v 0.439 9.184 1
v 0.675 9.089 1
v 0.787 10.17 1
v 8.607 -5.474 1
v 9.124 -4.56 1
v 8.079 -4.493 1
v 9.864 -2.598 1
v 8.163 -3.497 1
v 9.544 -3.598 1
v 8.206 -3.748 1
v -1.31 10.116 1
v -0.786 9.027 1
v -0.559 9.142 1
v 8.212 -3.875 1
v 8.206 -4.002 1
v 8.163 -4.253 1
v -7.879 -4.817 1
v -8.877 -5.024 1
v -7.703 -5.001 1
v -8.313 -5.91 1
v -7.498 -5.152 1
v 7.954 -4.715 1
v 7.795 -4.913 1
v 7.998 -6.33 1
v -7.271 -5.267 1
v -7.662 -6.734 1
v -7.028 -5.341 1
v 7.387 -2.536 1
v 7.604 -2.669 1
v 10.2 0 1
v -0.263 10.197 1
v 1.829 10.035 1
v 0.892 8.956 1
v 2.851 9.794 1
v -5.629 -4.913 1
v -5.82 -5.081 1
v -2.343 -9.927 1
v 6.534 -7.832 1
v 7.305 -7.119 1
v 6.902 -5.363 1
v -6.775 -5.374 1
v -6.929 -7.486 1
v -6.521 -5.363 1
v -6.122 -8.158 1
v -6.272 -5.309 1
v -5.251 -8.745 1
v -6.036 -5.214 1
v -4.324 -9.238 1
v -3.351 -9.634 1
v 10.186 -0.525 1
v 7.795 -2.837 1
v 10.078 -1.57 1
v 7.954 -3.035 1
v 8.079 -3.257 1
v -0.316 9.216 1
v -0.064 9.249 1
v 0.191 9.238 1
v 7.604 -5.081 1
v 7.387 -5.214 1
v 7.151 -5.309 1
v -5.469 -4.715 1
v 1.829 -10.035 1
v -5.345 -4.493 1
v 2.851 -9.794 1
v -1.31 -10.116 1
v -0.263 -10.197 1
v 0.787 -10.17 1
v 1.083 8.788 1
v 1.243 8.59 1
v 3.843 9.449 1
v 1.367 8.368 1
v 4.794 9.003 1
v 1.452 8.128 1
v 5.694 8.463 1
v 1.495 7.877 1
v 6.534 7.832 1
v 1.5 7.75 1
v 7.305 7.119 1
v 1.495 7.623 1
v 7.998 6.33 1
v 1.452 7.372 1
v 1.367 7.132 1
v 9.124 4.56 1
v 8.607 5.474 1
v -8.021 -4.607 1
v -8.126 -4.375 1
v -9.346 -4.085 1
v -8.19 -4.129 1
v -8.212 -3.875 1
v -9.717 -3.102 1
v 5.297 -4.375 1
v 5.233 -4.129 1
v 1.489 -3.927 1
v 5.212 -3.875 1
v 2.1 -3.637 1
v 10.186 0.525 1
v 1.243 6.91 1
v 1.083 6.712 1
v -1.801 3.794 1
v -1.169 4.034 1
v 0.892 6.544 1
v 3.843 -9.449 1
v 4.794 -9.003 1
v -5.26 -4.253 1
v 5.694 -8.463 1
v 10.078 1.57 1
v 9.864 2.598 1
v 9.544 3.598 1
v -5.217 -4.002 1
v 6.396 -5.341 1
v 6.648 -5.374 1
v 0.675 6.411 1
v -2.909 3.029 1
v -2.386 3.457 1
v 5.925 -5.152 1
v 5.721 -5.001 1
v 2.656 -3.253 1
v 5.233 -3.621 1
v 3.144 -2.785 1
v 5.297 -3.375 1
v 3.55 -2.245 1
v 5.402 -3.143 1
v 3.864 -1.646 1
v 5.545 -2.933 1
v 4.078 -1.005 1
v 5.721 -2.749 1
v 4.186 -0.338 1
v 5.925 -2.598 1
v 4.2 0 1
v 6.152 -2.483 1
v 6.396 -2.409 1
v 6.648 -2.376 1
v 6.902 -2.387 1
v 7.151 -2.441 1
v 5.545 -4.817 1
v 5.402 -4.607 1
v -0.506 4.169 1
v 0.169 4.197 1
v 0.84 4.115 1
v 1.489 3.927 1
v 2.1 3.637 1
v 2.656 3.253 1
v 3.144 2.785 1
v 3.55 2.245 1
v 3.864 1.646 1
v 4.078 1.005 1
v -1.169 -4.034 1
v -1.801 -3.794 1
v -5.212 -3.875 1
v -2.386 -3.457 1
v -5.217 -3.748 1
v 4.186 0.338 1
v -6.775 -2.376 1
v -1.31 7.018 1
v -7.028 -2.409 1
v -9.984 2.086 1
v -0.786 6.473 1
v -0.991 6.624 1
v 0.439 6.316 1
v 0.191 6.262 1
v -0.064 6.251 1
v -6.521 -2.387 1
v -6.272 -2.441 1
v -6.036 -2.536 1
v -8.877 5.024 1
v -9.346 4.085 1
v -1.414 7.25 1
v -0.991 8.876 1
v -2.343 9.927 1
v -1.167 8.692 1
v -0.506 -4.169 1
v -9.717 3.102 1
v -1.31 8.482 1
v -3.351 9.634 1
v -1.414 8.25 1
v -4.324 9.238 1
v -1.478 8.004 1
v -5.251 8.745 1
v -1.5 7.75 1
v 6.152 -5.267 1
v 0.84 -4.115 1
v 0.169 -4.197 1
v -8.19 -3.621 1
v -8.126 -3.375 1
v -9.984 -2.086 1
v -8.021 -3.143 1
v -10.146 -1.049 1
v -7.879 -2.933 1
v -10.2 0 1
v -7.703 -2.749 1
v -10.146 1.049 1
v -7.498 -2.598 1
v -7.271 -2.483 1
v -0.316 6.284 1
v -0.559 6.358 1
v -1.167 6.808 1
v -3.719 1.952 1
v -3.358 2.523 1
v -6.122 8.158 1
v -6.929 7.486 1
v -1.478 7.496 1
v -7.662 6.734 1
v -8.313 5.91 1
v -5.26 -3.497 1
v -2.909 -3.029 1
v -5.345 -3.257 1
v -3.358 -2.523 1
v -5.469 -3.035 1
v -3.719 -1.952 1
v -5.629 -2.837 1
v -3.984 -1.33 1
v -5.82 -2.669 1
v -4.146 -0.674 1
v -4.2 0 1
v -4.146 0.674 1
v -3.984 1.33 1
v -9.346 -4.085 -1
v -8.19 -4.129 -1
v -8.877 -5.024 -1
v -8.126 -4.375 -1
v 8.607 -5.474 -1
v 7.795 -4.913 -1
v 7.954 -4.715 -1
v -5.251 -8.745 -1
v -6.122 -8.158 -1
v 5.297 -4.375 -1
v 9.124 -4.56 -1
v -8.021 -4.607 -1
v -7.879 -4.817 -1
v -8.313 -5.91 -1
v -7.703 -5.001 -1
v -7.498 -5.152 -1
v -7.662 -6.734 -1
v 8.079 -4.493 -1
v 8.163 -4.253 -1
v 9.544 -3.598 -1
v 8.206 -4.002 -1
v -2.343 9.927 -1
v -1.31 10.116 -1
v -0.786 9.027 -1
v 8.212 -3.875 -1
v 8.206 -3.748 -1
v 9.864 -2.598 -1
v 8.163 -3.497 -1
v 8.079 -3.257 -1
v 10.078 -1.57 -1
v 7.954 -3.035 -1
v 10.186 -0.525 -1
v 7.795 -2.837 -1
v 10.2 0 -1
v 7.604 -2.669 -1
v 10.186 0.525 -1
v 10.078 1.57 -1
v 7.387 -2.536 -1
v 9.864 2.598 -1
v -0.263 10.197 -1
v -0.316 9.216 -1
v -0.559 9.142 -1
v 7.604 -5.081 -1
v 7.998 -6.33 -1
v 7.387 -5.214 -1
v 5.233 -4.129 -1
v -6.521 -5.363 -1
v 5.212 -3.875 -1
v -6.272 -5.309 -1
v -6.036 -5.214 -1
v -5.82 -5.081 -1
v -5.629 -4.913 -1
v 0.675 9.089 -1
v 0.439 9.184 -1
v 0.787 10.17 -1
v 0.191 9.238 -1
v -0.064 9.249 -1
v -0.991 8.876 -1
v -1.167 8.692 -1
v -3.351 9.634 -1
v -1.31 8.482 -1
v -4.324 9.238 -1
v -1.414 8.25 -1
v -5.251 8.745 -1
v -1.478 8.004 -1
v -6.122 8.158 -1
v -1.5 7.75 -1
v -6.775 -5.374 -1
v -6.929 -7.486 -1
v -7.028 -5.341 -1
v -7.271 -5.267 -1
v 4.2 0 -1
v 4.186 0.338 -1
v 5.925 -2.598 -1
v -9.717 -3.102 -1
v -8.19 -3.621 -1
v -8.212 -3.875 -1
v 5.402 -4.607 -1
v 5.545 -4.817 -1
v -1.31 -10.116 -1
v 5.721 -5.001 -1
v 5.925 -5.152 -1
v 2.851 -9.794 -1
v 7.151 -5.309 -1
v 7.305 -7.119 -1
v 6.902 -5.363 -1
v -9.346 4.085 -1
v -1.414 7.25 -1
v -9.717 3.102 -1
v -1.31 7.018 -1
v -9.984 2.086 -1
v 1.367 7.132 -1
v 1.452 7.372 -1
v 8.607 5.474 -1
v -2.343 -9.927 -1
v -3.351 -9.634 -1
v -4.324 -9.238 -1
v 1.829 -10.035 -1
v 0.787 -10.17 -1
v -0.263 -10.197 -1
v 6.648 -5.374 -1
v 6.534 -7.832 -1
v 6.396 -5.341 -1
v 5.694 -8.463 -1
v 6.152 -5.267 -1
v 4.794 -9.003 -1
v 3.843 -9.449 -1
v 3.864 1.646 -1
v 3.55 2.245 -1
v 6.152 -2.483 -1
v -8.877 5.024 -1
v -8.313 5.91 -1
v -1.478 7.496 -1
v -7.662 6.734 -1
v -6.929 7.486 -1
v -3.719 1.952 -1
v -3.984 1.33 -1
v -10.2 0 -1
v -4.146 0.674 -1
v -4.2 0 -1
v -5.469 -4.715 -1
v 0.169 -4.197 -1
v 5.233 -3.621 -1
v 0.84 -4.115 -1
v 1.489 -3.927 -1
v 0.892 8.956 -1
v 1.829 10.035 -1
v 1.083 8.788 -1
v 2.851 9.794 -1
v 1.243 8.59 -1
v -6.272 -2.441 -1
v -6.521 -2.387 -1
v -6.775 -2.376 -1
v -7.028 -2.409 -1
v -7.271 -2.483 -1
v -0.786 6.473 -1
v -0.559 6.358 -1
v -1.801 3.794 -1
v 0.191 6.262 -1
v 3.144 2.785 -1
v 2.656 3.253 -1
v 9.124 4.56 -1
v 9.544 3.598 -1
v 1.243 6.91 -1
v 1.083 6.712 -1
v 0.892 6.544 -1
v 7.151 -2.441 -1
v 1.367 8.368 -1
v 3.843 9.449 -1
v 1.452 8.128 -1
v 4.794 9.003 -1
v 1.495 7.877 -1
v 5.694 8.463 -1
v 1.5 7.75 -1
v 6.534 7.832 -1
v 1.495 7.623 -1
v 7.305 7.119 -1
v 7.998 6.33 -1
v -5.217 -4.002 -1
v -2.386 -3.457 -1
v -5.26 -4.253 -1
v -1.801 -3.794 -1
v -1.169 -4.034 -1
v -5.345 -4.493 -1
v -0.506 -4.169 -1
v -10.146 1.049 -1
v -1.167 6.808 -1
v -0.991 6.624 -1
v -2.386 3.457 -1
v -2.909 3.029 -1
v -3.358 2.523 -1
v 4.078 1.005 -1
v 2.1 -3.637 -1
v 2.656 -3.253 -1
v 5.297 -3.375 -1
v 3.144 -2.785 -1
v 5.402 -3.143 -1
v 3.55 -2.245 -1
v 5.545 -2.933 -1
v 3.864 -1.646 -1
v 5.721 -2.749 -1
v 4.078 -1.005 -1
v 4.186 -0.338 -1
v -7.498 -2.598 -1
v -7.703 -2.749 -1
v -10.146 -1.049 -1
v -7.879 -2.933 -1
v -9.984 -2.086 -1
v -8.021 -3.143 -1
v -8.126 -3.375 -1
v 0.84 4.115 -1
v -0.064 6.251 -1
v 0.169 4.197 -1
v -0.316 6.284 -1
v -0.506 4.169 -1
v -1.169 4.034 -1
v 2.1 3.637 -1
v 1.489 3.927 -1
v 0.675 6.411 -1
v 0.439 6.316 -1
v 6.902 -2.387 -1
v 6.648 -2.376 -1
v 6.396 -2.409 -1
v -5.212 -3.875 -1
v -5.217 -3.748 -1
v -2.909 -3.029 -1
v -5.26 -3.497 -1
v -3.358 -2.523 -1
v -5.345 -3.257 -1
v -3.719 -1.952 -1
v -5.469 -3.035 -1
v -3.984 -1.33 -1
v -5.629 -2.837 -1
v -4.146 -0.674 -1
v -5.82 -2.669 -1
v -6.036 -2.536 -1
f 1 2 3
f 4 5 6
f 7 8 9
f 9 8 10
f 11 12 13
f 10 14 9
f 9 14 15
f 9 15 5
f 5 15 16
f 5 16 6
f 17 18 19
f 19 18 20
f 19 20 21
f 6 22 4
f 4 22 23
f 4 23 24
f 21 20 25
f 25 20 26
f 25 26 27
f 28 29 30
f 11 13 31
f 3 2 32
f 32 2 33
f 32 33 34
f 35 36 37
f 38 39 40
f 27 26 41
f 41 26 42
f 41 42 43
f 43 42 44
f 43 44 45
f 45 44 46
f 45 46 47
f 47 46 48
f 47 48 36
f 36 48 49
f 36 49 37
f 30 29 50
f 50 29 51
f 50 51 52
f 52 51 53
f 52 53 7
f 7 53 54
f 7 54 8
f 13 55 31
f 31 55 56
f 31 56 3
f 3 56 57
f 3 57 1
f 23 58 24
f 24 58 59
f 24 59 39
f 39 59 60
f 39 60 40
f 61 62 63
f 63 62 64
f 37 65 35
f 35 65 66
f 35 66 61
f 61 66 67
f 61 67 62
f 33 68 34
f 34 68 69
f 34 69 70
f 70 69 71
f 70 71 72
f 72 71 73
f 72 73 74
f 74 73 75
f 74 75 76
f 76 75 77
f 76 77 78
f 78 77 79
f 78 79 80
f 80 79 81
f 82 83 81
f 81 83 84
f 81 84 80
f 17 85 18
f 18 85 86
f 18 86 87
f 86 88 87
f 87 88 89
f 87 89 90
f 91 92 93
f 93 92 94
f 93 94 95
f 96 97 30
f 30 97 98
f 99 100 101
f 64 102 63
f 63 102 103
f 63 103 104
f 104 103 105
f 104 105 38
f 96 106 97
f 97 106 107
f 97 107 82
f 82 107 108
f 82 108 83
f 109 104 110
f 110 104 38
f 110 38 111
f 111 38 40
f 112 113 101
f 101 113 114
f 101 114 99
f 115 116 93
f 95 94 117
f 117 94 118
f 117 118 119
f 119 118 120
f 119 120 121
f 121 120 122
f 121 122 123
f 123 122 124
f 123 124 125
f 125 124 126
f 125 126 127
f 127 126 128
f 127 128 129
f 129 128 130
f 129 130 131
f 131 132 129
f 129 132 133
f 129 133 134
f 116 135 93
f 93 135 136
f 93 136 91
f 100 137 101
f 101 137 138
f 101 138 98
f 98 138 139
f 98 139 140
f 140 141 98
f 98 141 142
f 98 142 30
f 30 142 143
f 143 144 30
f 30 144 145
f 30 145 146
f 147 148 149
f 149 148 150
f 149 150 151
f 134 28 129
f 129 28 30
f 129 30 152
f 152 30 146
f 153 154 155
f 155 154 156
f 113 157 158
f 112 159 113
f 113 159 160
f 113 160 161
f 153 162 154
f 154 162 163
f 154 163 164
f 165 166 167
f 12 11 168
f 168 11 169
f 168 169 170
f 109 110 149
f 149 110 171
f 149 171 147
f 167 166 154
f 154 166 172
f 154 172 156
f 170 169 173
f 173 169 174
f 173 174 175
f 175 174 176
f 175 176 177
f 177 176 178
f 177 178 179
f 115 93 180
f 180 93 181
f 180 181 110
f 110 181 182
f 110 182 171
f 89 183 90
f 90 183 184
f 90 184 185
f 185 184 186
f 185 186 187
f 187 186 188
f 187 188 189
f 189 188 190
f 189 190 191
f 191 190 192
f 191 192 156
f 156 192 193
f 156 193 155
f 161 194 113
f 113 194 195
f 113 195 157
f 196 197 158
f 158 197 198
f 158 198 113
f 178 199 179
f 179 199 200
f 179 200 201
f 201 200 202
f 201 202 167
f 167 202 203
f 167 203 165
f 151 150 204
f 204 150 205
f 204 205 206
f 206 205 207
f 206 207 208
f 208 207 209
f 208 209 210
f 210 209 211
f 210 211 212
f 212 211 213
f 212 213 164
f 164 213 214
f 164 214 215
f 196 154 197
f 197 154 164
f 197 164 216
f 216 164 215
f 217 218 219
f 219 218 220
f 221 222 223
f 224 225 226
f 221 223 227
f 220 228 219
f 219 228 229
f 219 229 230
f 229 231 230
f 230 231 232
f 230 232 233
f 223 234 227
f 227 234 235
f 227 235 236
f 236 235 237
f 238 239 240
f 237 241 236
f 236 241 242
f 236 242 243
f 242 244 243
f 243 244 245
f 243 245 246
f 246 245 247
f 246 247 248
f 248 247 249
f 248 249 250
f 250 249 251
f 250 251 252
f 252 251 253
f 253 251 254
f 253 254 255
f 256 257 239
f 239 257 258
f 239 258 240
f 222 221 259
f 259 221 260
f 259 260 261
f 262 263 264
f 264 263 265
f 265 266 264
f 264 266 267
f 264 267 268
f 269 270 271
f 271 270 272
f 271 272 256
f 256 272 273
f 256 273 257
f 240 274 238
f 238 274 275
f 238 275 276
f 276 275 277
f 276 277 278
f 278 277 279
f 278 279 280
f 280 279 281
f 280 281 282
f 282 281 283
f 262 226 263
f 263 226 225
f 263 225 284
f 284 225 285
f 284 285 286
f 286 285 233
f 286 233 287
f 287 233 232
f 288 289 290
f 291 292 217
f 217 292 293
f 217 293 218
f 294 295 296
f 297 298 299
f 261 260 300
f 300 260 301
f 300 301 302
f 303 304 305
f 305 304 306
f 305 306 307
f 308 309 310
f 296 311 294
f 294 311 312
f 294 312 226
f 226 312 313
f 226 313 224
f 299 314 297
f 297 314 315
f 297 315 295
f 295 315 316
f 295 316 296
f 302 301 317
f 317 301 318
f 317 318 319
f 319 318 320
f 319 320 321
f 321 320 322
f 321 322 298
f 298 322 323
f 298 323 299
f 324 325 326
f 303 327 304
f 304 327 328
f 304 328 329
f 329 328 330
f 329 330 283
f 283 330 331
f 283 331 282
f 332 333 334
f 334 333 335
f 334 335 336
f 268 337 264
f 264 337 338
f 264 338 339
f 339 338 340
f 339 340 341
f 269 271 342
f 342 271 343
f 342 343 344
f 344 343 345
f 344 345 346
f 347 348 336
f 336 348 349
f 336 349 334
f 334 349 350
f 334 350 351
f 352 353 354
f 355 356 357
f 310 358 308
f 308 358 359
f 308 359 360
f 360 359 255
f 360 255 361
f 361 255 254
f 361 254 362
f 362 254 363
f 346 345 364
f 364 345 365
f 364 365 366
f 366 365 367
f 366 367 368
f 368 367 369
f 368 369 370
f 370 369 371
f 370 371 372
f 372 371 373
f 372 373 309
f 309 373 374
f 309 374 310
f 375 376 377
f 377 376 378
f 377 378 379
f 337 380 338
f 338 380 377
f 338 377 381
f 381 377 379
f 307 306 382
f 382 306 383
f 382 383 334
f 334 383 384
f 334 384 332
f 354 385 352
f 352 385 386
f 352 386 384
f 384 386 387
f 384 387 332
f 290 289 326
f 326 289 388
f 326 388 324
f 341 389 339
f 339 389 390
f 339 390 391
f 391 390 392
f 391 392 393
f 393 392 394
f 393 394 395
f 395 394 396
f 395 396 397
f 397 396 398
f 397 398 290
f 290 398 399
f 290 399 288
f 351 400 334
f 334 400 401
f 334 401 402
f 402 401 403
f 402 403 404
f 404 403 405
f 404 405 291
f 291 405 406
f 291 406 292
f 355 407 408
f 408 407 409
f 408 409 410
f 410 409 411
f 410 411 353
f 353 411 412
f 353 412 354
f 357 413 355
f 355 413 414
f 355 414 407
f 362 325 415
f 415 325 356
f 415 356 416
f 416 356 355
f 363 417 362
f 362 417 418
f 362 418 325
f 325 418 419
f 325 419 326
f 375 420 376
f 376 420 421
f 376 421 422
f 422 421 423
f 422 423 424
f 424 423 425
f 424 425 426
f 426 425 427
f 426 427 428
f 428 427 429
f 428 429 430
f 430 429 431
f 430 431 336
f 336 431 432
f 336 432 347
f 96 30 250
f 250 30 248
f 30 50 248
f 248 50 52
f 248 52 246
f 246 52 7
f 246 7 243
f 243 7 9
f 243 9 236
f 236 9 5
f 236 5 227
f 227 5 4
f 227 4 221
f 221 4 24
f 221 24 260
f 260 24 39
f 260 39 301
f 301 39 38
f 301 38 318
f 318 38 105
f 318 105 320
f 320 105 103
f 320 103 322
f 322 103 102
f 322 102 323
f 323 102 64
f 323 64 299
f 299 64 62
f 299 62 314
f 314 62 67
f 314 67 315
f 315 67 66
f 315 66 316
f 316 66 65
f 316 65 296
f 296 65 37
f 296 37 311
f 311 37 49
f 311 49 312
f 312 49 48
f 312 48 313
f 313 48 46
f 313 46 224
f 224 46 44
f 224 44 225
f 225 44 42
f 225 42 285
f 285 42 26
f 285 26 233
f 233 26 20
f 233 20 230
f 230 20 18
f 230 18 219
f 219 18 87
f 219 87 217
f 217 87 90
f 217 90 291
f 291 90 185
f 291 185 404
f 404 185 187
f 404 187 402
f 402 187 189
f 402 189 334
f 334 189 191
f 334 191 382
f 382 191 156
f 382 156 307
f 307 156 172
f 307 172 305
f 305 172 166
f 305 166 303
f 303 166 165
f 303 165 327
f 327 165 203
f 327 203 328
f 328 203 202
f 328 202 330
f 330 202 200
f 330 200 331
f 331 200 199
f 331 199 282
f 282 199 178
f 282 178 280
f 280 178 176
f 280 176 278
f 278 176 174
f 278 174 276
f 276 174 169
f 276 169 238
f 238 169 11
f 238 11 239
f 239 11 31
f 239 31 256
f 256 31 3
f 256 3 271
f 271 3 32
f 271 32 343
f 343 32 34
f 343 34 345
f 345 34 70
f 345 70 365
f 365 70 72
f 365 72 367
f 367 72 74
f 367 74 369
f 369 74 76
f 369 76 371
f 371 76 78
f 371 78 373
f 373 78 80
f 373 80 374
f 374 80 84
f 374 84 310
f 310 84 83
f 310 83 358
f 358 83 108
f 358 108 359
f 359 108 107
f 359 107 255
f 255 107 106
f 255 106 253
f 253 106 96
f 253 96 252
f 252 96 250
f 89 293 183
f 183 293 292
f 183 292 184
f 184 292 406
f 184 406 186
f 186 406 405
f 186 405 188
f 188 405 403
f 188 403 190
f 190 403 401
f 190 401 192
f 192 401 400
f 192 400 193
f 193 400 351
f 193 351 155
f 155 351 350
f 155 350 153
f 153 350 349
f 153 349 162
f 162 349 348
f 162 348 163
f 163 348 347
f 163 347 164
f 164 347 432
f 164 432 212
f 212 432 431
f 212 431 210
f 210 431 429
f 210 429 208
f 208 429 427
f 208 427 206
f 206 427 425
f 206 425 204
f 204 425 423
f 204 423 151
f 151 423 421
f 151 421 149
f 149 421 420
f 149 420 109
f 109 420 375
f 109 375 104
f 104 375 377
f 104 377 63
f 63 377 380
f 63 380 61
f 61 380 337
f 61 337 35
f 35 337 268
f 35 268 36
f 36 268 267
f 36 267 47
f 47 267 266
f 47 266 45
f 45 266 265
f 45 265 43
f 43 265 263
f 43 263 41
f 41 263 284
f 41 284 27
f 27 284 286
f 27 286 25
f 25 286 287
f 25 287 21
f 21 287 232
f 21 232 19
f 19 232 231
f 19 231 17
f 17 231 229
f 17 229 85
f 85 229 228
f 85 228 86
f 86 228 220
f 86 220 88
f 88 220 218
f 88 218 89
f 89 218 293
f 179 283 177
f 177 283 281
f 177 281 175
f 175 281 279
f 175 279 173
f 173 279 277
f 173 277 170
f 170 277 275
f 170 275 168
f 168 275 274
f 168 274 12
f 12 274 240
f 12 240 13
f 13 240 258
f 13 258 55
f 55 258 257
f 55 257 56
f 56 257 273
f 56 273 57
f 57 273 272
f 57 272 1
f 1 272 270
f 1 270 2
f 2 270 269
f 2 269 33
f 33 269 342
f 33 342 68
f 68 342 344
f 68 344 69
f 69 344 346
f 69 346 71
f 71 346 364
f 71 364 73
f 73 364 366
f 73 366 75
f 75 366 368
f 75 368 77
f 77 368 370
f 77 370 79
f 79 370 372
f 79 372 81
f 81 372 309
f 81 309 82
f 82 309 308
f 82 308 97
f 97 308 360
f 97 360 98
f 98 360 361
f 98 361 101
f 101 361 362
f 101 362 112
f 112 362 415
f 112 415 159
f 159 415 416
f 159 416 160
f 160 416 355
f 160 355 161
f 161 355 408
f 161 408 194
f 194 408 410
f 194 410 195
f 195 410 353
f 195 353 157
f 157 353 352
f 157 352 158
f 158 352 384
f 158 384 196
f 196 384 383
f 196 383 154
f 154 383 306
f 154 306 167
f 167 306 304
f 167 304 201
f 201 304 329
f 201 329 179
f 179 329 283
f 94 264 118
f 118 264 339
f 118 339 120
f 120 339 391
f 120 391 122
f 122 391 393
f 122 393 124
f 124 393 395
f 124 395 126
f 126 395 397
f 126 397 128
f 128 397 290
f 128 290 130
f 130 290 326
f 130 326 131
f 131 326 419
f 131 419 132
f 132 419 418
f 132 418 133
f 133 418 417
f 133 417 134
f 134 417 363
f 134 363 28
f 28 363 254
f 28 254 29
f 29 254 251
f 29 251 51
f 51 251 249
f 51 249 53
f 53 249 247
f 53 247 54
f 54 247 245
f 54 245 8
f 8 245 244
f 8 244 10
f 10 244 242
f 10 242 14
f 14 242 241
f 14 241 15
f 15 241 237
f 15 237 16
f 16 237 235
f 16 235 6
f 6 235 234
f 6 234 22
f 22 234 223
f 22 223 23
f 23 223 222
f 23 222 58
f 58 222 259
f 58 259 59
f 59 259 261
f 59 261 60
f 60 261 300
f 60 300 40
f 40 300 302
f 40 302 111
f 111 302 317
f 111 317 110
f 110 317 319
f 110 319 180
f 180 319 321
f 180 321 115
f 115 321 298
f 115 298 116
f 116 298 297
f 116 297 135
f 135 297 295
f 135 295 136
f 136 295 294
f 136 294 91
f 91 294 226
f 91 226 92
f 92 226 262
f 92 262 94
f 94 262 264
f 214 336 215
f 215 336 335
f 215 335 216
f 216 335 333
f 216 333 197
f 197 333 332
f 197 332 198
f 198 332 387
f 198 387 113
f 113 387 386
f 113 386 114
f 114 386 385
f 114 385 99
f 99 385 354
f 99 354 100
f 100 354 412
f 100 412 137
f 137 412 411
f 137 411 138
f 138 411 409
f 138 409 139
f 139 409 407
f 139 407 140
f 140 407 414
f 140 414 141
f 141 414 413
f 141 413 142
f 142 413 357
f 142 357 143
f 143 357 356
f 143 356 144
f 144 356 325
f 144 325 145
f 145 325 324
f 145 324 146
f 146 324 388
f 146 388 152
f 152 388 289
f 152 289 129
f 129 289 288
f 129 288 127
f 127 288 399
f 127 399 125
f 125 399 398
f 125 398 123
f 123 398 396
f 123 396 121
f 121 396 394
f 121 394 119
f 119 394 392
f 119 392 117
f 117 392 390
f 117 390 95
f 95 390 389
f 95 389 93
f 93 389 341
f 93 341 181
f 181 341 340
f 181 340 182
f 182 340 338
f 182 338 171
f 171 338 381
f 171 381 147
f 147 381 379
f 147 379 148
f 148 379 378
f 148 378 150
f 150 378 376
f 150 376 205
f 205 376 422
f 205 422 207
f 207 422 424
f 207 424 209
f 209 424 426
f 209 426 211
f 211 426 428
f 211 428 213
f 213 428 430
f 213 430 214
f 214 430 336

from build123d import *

# Parameters (mm, degrees)
SKETCH_1_R      = 10.2
SKETCH_1_R_2    = 1.5
SKETCH_1_R_3    = 4.2
EXTRUDE_1_DEPTH = 1


with BuildPart() as part:
    # Эскиз1 → Бобышка-Вытянуть1 (new, symmetric)
    with BuildSketch(Plane.XY):
        Circle(SKETCH_1_R)
        with Locations((-6.711696879, -3.875)):
            Circle(SKETCH_1_R_2, mode=Mode.SUBTRACT)
        with Locations((0, 7.75)):
            Circle(SKETCH_1_R_2, mode=Mode.SUBTRACT)
        with Locations((6.711696879, -3.875)):
            Circle(SKETCH_1_R_2, mode=Mode.SUBTRACT)
        Circle(SKETCH_1_R_3, mode=Mode.SUBTRACT)
    extrude(amount=EXTRUDE_1_DEPTH, both=True)


solid = part.part
